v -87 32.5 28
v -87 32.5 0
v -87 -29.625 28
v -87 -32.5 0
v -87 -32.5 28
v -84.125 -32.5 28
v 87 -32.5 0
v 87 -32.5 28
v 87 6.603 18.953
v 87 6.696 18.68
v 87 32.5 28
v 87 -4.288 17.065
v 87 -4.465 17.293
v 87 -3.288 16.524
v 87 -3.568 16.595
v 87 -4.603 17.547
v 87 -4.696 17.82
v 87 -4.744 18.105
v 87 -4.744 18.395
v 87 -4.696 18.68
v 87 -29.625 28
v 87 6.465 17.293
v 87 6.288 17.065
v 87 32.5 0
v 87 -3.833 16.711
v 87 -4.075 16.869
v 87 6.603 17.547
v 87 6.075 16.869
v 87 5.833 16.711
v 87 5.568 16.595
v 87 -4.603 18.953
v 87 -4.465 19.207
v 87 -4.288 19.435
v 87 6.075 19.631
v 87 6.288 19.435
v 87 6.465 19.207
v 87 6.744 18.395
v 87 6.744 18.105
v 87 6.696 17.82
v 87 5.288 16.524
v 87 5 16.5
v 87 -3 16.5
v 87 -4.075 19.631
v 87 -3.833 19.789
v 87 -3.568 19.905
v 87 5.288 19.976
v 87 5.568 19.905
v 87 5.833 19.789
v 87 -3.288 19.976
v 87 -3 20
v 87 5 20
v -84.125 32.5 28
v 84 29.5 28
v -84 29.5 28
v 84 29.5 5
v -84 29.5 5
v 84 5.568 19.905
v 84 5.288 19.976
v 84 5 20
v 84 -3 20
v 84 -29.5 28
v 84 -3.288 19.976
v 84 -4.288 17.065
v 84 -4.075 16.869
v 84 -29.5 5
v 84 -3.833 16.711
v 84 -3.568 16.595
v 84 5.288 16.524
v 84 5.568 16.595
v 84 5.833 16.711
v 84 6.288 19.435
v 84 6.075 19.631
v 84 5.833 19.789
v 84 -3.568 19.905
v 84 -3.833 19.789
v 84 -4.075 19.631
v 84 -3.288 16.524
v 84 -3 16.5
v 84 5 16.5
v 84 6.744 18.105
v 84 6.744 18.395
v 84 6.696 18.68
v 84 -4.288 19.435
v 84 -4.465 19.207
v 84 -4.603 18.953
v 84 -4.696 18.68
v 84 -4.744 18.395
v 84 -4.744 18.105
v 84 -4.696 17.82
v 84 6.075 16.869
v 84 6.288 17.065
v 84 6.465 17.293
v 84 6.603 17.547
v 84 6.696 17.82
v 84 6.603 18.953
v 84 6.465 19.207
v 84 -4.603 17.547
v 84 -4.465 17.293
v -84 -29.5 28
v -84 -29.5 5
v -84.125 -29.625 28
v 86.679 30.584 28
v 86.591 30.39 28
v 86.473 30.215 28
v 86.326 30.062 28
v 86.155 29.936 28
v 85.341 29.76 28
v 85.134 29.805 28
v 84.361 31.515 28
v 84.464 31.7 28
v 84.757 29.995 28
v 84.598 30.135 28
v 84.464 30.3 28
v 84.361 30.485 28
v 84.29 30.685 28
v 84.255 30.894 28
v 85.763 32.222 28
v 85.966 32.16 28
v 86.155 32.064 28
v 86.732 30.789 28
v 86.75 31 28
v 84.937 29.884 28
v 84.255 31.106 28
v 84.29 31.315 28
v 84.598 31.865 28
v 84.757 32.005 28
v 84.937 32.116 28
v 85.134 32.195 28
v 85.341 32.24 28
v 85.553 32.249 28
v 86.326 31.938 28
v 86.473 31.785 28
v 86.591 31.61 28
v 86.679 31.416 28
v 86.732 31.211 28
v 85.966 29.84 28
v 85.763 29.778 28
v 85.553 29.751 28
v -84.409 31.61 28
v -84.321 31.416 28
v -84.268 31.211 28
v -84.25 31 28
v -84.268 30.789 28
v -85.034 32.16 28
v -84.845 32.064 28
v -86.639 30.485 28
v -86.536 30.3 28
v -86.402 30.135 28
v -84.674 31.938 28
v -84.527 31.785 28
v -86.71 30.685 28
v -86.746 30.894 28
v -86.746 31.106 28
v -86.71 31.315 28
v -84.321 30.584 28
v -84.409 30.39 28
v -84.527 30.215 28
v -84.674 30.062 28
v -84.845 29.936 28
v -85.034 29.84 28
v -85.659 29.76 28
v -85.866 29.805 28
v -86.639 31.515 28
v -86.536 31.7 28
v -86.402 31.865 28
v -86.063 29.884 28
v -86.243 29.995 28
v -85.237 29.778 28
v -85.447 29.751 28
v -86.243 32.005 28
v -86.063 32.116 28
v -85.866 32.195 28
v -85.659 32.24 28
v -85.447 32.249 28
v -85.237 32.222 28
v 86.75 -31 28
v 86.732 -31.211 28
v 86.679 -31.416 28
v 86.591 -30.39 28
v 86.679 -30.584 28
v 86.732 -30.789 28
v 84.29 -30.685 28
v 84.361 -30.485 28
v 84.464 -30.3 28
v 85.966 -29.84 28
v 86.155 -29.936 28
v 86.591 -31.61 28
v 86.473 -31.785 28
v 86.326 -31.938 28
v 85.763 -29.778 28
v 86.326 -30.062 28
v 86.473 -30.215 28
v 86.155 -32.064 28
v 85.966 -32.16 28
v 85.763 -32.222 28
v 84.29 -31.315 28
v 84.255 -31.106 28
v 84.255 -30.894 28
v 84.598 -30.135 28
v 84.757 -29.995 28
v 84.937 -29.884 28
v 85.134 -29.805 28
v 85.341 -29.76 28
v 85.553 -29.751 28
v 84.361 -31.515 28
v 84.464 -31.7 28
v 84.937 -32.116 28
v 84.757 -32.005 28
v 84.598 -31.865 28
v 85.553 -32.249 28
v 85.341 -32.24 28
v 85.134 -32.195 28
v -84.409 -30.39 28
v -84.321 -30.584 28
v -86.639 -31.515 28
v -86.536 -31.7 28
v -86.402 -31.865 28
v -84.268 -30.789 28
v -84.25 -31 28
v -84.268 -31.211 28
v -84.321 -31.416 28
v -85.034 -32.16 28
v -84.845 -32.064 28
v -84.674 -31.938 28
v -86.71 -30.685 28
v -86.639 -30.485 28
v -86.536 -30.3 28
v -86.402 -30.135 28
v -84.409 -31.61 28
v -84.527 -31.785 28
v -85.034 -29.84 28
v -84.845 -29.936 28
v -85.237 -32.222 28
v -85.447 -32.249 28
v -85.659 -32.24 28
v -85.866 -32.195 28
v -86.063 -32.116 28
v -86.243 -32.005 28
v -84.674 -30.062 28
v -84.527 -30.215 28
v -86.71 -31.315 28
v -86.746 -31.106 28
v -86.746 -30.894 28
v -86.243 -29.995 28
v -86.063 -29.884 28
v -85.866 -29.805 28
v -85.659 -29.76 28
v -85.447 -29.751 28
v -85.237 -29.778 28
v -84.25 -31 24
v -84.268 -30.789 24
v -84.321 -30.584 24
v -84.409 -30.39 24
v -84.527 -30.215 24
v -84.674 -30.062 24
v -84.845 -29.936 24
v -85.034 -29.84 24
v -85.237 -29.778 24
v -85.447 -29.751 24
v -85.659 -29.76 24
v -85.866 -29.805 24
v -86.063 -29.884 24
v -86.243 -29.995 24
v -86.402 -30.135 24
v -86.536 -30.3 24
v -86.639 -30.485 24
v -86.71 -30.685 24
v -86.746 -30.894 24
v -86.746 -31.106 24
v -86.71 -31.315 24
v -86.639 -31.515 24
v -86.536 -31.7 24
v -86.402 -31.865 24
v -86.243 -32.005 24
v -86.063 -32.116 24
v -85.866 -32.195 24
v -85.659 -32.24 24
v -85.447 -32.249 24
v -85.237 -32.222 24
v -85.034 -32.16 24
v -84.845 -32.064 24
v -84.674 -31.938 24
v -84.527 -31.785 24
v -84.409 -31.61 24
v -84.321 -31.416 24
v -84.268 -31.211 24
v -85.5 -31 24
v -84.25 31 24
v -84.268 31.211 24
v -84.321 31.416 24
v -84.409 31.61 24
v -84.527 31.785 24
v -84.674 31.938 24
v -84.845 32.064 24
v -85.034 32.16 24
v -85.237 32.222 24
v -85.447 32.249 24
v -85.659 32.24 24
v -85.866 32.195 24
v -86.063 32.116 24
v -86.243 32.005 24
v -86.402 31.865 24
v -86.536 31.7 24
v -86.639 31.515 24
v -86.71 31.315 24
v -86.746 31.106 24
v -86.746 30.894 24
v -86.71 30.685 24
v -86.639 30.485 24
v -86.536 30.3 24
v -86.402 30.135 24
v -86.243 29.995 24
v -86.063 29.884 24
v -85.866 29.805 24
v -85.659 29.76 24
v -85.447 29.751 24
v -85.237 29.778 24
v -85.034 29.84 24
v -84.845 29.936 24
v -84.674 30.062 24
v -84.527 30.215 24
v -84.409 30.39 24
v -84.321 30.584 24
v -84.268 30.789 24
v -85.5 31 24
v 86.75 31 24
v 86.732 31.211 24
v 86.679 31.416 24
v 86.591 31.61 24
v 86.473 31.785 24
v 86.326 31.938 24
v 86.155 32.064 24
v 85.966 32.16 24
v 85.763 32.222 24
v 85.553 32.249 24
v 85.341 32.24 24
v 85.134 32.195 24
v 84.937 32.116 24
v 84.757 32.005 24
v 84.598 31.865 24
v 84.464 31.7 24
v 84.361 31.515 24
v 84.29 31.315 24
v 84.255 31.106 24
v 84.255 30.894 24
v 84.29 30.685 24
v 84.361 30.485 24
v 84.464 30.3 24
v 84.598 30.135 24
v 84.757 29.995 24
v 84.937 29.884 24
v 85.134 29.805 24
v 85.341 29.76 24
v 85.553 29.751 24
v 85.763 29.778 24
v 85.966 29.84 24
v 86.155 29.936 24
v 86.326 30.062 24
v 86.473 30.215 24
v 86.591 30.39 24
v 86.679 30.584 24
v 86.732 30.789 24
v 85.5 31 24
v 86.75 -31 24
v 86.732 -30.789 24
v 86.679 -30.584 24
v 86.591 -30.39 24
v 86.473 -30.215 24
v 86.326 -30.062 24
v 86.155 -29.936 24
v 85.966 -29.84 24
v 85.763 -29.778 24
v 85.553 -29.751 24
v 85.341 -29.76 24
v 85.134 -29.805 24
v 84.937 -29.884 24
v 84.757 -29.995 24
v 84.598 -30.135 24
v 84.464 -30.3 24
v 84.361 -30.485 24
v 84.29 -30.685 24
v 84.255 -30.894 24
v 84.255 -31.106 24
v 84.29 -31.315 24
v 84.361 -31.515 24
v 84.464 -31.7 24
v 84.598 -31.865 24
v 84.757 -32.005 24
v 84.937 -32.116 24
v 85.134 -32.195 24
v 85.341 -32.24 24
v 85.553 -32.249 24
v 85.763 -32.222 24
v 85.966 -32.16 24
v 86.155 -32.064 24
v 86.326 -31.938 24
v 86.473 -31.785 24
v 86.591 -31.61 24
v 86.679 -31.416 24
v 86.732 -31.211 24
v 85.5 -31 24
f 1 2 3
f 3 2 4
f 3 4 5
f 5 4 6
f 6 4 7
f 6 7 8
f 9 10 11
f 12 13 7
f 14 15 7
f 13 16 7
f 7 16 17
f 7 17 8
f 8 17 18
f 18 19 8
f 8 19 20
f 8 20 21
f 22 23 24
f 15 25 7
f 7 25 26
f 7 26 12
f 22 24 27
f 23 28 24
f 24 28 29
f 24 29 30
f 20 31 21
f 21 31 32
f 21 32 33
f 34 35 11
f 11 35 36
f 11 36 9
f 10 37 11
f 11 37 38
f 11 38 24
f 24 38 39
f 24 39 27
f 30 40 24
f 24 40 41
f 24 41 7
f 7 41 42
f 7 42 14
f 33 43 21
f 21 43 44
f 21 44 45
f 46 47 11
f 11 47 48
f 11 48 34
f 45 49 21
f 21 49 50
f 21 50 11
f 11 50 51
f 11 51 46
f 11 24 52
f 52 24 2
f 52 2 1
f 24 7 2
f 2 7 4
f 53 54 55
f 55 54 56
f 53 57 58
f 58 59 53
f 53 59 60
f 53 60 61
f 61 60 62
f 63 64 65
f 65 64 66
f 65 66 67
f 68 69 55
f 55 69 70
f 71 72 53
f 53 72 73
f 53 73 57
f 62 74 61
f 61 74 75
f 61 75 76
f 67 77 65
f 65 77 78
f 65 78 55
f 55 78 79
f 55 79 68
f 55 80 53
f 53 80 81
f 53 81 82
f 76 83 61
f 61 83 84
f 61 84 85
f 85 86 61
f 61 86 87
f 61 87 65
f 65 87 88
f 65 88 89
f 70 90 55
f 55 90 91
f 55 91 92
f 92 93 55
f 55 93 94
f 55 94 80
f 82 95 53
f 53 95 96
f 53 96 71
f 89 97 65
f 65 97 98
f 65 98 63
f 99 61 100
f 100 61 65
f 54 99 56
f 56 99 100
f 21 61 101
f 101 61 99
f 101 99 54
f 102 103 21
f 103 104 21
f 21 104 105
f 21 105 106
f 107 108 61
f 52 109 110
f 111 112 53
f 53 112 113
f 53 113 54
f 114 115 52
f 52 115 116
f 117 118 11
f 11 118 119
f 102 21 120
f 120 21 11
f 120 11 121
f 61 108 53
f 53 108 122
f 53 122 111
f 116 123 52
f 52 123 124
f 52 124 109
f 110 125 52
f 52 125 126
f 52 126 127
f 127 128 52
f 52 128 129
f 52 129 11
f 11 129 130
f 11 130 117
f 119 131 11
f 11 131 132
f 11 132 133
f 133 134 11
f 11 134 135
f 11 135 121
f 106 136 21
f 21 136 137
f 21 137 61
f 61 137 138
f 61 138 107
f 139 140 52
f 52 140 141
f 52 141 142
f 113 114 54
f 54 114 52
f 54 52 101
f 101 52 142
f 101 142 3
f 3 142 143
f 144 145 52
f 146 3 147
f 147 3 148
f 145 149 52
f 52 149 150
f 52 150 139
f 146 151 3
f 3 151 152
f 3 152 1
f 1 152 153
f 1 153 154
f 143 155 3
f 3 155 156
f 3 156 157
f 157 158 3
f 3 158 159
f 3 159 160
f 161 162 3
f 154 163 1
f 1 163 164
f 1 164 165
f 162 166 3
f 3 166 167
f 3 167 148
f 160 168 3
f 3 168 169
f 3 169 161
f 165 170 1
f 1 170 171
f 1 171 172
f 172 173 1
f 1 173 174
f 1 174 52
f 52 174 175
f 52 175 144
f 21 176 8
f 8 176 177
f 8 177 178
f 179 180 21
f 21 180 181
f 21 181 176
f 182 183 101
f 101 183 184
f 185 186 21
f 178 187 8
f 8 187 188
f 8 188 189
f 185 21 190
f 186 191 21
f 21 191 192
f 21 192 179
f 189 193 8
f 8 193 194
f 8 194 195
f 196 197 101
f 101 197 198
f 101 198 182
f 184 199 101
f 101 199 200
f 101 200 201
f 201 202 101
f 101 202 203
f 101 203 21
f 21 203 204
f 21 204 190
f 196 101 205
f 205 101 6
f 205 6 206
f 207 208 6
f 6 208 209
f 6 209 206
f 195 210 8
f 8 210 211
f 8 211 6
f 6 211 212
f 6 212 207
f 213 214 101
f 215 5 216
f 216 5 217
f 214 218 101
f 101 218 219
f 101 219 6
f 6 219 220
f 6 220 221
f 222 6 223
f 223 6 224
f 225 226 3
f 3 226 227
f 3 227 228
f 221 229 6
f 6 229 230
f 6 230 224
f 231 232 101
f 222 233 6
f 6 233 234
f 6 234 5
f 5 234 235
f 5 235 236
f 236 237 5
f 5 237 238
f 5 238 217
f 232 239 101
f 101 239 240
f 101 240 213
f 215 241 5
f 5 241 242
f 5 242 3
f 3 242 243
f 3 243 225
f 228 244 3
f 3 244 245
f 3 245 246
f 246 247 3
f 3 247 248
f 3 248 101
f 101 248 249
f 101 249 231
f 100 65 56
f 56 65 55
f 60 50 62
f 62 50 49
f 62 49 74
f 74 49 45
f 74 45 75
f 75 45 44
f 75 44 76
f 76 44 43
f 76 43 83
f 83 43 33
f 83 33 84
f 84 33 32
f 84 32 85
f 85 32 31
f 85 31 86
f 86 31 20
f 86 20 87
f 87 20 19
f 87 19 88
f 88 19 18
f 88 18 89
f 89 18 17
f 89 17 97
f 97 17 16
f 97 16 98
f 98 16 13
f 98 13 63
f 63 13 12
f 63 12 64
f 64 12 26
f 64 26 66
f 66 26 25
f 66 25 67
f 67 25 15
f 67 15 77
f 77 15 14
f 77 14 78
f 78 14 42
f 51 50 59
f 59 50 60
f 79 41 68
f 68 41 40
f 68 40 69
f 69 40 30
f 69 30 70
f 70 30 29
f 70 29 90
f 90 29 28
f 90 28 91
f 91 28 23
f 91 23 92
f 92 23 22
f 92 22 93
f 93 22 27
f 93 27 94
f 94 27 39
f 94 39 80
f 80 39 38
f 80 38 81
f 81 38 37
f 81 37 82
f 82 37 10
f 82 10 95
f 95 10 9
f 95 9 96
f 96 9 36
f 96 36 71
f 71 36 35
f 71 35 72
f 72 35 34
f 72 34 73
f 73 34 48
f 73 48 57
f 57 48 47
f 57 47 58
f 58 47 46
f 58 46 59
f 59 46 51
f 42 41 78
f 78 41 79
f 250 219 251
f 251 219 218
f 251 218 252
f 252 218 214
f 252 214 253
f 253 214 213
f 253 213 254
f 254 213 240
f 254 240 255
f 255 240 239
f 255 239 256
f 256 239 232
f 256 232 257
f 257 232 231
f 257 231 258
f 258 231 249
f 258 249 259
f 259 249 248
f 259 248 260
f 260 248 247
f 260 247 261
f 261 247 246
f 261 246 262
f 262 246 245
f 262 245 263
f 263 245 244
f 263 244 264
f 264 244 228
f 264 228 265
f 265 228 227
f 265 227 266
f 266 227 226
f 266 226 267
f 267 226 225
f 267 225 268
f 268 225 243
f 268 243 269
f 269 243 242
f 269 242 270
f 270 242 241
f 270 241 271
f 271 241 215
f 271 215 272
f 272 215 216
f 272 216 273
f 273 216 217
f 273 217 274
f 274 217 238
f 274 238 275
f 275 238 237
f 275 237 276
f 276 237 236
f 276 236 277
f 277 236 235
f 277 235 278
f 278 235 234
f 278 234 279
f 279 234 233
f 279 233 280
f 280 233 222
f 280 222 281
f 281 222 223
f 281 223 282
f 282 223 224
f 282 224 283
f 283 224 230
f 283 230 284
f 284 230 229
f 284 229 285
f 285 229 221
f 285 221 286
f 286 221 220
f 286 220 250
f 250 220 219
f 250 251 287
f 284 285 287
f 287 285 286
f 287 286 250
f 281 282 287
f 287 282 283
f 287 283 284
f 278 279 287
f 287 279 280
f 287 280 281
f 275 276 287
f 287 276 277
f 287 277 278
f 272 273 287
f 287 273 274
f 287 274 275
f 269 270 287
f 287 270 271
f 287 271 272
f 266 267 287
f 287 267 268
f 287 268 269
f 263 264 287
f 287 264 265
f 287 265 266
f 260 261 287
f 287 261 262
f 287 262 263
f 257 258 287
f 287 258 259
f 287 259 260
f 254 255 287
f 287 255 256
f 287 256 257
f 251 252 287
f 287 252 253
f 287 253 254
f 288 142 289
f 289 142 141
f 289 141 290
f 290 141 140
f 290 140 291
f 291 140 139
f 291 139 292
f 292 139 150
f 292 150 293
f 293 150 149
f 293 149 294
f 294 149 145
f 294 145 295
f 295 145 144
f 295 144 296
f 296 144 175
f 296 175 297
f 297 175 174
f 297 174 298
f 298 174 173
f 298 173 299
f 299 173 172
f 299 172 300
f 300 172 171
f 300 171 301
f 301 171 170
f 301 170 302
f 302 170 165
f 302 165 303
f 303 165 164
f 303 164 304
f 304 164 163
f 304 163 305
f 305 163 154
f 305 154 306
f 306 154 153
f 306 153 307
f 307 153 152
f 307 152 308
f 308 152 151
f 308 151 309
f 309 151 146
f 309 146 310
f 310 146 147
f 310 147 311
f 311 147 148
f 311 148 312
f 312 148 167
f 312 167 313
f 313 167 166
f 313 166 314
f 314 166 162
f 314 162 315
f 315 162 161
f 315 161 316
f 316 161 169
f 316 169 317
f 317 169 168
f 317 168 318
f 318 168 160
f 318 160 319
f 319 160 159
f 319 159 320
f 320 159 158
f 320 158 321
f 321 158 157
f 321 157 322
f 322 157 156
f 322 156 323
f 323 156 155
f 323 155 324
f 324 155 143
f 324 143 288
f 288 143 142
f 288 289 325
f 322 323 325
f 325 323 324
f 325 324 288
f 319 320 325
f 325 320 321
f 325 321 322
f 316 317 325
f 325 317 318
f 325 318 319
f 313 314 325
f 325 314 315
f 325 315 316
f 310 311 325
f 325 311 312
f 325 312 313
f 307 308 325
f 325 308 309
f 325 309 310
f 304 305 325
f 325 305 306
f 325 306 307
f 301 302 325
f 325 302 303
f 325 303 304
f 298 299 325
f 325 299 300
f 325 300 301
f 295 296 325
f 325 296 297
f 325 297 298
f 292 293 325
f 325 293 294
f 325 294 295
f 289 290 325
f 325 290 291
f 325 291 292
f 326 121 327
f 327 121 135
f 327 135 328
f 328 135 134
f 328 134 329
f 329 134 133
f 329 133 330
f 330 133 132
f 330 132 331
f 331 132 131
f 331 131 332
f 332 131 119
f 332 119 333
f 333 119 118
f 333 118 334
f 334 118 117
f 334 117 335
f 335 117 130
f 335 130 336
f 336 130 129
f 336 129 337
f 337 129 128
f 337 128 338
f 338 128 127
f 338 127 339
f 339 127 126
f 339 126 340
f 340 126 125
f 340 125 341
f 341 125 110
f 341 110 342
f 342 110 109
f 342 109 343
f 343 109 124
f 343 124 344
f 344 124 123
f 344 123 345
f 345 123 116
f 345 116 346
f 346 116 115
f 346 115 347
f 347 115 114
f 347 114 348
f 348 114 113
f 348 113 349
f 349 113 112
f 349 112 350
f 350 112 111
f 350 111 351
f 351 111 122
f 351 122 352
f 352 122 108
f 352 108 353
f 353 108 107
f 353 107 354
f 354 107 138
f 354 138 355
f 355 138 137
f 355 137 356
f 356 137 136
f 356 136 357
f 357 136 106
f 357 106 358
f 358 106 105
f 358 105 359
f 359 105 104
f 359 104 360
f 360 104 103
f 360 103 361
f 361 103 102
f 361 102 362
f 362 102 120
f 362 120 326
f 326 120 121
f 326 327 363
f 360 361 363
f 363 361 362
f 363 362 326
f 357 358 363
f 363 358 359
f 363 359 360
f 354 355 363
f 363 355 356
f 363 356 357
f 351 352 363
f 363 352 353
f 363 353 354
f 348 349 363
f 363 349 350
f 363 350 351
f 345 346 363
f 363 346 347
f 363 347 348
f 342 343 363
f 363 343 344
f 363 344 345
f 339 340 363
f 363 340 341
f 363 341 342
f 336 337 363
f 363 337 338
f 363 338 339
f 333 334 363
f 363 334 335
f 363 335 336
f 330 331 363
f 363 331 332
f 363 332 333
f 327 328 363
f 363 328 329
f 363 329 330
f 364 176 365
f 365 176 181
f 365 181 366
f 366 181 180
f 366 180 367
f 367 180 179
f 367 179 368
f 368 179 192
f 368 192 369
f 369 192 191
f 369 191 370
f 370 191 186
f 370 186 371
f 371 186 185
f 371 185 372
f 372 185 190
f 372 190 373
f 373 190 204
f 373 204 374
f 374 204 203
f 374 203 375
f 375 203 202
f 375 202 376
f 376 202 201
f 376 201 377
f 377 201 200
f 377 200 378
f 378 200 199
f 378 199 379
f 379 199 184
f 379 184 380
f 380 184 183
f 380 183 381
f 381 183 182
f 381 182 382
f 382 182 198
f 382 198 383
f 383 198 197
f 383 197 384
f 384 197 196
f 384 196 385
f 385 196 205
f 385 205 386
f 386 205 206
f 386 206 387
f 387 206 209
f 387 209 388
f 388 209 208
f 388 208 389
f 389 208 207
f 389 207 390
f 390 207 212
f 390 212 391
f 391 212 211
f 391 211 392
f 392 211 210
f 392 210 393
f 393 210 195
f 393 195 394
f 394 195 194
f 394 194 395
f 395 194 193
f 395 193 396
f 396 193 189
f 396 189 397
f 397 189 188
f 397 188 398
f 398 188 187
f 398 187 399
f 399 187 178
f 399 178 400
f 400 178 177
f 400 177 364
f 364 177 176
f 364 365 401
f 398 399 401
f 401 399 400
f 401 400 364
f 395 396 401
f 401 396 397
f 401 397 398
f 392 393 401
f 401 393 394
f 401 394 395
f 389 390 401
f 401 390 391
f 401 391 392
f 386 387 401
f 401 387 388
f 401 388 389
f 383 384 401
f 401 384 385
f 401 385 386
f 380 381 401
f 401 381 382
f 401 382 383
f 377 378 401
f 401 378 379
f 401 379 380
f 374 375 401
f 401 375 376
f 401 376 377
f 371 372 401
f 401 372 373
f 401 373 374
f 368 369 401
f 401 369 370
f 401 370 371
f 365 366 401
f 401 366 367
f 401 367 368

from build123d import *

# Parameters (mm, degrees)
SKETCH1_W           = 174
SKETCH1_H           = 65
BOSS_EXTRUDE1_DEPTH = 5
SKETCH3_W           = 174
SKETCH3_H           = 65
SKETCH3_W_2         = 168
SKETCH3_H_2         = 59
BOSS_EXTRUDE3_DEPTH = 23
CUT_EXTRUDE1_DEPTH  = 23
SKETCH17_R          = 1.25
CUT_EXTRUDE5_DEPTH  = 4
SKETCH15_R          = 1.25
CUT_EXTRUDE4_DEPTH  = 4
SKETCH11_R          = 1.25
SKETCH11_R_2        = 0.084381571
CUT_EXTRUDE2_DEPTH  = 4
SKETCH13_R          = 0.084381571
CUT_EXTRUDE3_DEPTH  = 4


with BuildPart() as part:
    # Sketch1 → Boss-Extrude1 (new body)
    with BuildSketch(Plane.XY):
        Rectangle(SKETCH1_W, SKETCH1_H)
    extrude(amount=BOSS_EXTRUDE1_DEPTH)

    # Sketch3 → Boss-Extrude3 (add)
    with BuildSketch(Plane.XY.offset(5)):
        Rectangle(SKETCH3_W, SKETCH3_H)
        Rectangle(SKETCH3_W_2, SKETCH3_H_2, mode=Mode.SUBTRACT)
    extrude(amount=BOSS_EXTRUDE3_DEPTH)

    # Sketch9 → Cut-Extrude1 (cut)
    with BuildSketch(Plane(origin=(87, 0, 0), x_dir=(0, 0, -1), z_dir=(1, 0, 0))):
        with BuildLine():
            Line((-20, -3), (-20, 5))
            ThreePointArc((-20, 5), (-18.25, 6.75), (-16.5, 5))
            Line((-16.5, 5), (-16.5, -3))
            ThreePointArc((-16.5, -3), (-18.25, -4.75), (-20, -3))
        make_face()
    extrude(amount=-CUT_EXTRUDE1_DEPTH, mode=Mode.SUBTRACT)

    # Sketch17 → Cut-Extrude5 (cut)
    with BuildSketch(Plane.XY.offset(28)):
        with Locations((-85.5, -31)):
            Circle(SKETCH17_R)
        with Locations((-85.5, 31)):
            Circle(SKETCH17_R)
        with Locations((85.5, 31)):
            Circle(SKETCH17_R)
        with Locations((85.5, -31)):
            Circle(SKETCH17_R)
    extrude(amount=-CUT_EXTRUDE5_DEPTH, mode=Mode.SUBTRACT)

    # Sketch15 → Cut-Extrude4 (cut)
    with BuildSketch(Plane.XY.offset(28)):
        with Locations((-85.5, 31)):
            Circle(SKETCH15_R)
    extrude(amount=-CUT_EXTRUDE4_DEPTH, mode=Mode.SUBTRACT)

    # Sketch11 → Cut-Extrude2 (cut)
    with BuildSketch(Plane.XY.offset(28)):
        with Locations((-85.5, 31)):
            Circle(SKETCH11_R)
        with Locations((-85.5, 31)):
            Circle(SKETCH11_R_2, mode=Mode.SUBTRACT)
    extrude(amount=-CUT_EXTRUDE2_DEPTH, mode=Mode.SUBTRACT)

    # Sketch13 → Cut-Extrude3 (cut)
    with BuildSketch(Plane.XY.offset(28)):
        with Locations((-85.5, 31)):
            Circle(SKETCH13_R)
    extrude(amount=-CUT_EXTRUDE3_DEPTH, mode=Mode.SUBTRACT)


solid = part.part
